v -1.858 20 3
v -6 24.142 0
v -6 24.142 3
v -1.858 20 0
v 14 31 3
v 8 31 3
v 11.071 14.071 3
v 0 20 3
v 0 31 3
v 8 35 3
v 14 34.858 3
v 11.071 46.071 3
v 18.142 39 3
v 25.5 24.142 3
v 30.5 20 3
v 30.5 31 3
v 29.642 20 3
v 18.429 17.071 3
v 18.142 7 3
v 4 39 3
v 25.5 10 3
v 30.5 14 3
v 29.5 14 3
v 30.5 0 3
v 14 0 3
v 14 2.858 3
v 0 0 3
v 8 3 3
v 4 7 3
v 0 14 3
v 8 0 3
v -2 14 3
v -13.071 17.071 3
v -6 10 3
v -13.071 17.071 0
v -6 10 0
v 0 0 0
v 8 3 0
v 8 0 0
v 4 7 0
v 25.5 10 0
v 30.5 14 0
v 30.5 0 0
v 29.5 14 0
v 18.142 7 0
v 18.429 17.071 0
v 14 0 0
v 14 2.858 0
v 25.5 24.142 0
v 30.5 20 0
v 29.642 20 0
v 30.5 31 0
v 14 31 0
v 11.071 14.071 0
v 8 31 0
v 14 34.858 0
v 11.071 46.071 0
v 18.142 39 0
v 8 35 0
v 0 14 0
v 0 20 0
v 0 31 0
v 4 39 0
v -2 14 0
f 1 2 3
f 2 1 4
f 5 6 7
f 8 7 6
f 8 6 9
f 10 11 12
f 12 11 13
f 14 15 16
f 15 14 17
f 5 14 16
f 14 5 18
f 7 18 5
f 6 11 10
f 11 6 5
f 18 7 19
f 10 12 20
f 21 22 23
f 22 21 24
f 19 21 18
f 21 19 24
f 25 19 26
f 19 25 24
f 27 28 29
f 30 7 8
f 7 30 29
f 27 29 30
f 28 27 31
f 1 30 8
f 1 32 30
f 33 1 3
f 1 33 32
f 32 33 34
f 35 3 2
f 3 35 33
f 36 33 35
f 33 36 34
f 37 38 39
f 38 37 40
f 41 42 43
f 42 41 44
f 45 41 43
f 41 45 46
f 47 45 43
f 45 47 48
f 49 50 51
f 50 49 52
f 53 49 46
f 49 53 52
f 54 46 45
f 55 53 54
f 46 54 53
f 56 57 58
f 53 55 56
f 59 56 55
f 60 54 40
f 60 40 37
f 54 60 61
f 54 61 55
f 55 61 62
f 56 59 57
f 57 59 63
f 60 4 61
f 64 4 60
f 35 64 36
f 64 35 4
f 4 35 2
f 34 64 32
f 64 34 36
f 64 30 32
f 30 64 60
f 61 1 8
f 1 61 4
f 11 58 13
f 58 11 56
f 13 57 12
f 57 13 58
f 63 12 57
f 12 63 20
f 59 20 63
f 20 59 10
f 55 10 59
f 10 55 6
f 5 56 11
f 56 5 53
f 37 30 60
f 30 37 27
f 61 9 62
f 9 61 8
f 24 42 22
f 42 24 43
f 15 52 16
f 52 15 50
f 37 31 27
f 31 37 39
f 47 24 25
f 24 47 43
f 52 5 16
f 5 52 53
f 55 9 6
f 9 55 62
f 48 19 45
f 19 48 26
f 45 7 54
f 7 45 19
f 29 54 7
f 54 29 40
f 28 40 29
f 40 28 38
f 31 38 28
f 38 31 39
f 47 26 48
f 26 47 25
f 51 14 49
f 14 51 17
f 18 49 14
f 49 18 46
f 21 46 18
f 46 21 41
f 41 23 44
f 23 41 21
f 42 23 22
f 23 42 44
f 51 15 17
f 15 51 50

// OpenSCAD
// file: base.scad
pi_width=65;

arrow_diag=13;
arrow_spacing=1;
arrow_depth=arrow_diag+arrow_spacing;
entry_depth=arrow_depth-arrow_spacing;

plug_size=5;
plug_gap=1.5;
plug_total_size=plug_size+plug_gap+plug_size;

spacing=3;

base_height=3;

base_width=entry_depth+spacing+pi_width+spacing+spacing;
base_depth=spacing+plug_total_size+spacing+entry_depth;

module arrow_up() {
  translate([8,0,0]) 
  union() {
    rotate([0,0,45]) cube([10,10,base_height]);
    translate([4,4,0]) cube([4,6,base_height]);
  }
}

module arrow_left() {
  translate([4,16,0]) rotate([0,0,270]) arrow_up();
}

module entry_up() {
  difference() {
    arrow_up();
    translate([14,14,0]) cube([3,6,base_height]);
  }
}

module entry_left() { 
  translate([0,arrow_spacing*-1,0]) difference() {
    arrow_left();
    translate([14,14,0]) cube([3,6,base_height]);
  }
}

module pi_plug_single() {
   union() { 
      translate([0,0,base_height]) cube([plug_size,plug_size,plug_size]);
      translate([plug_gap+plug_size,0,base_height]) cube([plug_size,plug_size,plug_size]);
   }
}

module pi_plug() {
   union() { 
      translate([0,0,base_height]) cube([plug_size,plug_size,plug_size]);
      translate([plug_gap+plug_size,0,base_height]) cube([plug_size,plug_size,plug_size]);
      translate([0,pi_width-plug_size,base_height]) cube([plug_size,plug_size,plug_size]);
      translate([plug_gap+plug_size,pi_width-plug_size,base_height]) cube([plug_size,plug_size,plug_size]);
   }
}
// main file
include <base.scad>

base_width=arrow_depth*2+spacing;

difference() {
  union() {
    cube([base_depth,base_width,base_height]);
    
    translate([arrow_depth*-1,entry_depth-spacing,0]) arrow_up();
    translate([0,base_width,0]) arrow_left();
  }
  translate([0,0,0]) 
    entry_left();
  translate([base_depth-entry_depth,entry_depth-spacing,0]) 
    entry_up();
}
